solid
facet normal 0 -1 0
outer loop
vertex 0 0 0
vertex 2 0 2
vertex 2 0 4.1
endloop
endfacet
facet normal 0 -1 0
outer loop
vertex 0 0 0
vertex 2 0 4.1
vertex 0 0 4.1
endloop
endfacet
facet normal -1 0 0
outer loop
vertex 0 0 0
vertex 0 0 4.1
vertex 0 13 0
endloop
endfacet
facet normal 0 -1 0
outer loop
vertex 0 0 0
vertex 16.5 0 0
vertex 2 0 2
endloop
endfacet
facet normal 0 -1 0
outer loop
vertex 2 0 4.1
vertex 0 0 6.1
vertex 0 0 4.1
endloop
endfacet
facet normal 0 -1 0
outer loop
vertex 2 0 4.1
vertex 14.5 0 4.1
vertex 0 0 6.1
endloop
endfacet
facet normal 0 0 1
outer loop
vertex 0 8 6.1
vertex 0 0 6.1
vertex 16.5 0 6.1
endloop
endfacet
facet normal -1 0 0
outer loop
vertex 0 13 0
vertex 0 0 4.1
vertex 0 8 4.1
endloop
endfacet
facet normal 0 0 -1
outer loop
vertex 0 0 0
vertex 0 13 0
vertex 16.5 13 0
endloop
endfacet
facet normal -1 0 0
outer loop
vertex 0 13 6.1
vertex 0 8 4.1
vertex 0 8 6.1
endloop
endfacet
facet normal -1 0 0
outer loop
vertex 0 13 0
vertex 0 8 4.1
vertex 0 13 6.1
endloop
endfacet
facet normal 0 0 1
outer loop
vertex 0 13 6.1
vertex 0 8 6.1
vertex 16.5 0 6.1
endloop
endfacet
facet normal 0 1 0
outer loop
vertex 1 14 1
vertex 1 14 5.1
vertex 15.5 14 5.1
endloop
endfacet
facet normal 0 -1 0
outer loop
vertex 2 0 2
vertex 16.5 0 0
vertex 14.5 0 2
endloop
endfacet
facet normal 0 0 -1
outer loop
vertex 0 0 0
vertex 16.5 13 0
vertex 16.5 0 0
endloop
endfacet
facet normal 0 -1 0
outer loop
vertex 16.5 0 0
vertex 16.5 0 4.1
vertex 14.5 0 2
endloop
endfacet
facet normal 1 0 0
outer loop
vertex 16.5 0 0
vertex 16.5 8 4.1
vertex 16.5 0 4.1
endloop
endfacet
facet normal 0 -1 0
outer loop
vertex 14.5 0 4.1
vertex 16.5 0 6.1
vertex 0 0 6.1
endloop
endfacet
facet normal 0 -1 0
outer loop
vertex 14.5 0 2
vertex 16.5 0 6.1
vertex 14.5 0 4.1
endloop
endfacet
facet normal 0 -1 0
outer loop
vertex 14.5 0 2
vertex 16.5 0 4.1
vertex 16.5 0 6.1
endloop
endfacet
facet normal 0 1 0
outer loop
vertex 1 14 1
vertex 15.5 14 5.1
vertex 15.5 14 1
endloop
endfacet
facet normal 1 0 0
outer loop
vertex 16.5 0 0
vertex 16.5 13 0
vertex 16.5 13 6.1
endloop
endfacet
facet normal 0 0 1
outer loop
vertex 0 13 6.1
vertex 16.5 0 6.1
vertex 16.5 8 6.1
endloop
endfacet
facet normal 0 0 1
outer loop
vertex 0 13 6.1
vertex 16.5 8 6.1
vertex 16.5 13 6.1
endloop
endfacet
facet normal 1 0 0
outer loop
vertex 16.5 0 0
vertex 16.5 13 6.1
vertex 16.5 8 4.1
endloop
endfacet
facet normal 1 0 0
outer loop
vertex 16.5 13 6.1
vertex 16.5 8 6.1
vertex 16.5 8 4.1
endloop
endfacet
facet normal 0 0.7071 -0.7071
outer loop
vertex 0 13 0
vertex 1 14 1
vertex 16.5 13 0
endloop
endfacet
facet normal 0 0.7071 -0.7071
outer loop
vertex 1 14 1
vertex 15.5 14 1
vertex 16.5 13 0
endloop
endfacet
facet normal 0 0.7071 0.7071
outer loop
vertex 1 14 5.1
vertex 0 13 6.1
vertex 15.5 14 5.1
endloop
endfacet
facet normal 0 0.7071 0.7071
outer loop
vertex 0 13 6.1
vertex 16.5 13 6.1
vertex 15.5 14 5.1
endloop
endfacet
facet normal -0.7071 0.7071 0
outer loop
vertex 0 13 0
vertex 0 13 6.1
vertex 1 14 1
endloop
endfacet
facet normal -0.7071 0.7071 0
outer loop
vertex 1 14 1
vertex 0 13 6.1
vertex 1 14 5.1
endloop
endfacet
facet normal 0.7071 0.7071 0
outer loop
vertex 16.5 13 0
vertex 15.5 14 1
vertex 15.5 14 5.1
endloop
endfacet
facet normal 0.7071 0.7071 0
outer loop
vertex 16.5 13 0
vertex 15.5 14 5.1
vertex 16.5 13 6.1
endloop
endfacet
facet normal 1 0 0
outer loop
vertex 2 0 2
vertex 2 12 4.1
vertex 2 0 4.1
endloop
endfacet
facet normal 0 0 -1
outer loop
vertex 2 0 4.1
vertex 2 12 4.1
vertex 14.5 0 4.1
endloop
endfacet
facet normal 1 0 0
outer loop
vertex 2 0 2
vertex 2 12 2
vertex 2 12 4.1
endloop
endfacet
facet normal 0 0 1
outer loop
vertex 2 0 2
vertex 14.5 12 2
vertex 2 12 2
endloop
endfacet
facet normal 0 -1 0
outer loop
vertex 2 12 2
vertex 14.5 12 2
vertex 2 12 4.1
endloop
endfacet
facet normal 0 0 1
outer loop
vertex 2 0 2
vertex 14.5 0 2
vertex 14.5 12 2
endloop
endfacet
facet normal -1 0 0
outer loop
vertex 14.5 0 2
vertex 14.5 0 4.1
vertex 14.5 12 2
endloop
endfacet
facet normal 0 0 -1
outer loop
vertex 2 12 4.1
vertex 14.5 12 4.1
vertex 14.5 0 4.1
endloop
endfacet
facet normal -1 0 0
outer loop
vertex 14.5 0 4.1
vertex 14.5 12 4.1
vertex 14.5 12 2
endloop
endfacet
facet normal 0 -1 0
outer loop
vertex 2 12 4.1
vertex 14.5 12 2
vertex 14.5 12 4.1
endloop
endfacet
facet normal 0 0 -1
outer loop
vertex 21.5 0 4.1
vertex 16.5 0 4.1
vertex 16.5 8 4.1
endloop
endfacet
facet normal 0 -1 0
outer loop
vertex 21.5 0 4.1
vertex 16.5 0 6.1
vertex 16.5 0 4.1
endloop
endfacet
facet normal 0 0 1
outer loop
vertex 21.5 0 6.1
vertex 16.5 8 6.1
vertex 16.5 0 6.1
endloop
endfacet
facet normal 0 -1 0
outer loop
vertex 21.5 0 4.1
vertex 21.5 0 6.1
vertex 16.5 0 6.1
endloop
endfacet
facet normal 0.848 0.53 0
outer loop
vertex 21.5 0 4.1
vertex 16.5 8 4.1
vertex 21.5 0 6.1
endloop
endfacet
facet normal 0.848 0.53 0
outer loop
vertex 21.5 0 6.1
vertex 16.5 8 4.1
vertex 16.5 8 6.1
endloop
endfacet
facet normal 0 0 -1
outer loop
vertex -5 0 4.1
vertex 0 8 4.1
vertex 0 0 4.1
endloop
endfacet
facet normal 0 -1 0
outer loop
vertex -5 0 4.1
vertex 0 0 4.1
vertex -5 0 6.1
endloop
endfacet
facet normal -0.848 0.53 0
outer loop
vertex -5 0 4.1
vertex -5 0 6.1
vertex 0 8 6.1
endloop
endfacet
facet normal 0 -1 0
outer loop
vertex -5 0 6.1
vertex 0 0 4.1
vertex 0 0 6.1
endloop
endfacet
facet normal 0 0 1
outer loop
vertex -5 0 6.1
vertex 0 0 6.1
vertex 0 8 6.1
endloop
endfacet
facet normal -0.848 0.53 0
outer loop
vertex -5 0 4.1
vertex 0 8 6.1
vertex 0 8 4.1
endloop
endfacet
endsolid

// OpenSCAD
//
// Cap for the USB plug on LED Light Beanie Hat
//
// v0.09 - Added chamfers to all four edges of the back end of the cap.

// Tolerances for the PCB-integraded USB plugs vary widely

// Parameters for the USB-A plug
// Märt's hat
plug_width = 12.5;
plug_thickness = 2.1;
plug_length = 10;

// Dad's hat
// plug_width = 12.6;
// plug_thickness = 2.2;
// plug_length = 10;

// Parameters for the cap
cap_thickness = 2;

// Parameters for the ears
ear_leg_x = 5; // Length of the leg extending the cap's width (along X-axis)
ear_leg_y = 8; // Length of the leg extending into the cap from its front face (along Y-axis)

// Parameters for rounding
round_radius = 1; // Radius for rounding the outer edges

// Parameters for chamfering
chamfer_size = 1; // Size for chamfering the back edges

// Calculate outer dimensions of the cap
outer_width = plug_width + (2 * cap_thickness);
outer_length = plug_length + (2 * cap_thickness);
outer_height = plug_thickness + (2 * cap_thickness);

// Calculate inner dimensions of the cap (cavity)
inner_width = plug_width;
inner_length = plug_length;
inner_height = plug_thickness;
module usb_cap() {
    union() {
        // Main cap body with the cavity/opening
        difference() {
            // Outer body of the cap, which is a simple cube
            cube([outer_width, outer_length, outer_height]);

            // Chamfers for the four edges of the back end
            // 1. Top-back edge (along X-axis, at Y=outer_length, Z=outer_height)
            // Chamfers for the four edges of the back end
            //
            // 1. Bottom-back edge (along X-axis, at Y=outer_length, Z=outer_height)
            translate([0, outer_length ,  0]) {
                rotate([0, 90, 0]) { // Align polygon in YZ, extrude along X
                    linear_extrude(height = outer_width) {
                        #polygon([[0,0], [-chamfer_size, 0], [0, -chamfer_size]]);
                    }
                }
            }

            // 2. Top-back edge (along X-axis, at Y=outer_length, Z=0)
            translate([0, outer_length, outer_height]) {
                rotate([0, 90, 0]) { // Align polygon in YZ, extrude along X
                    linear_extrude(height = outer_width) {
                        polygon([[0,0], [chamfer_size, 0], [0, -chamfer_size]]);
                    }
                }
            }

            // 3. Left-back edge (along Z-axis, at X=0, Y=outer_length)
            translate([0, outer_length, 0]) {
                linear_extrude(height = outer_height) {
                    polygon([[0,0], [chamfer_size, 0], [0, -chamfer_size]]);
                }
            }

            // 4. Right-back edge (along Z-axis, at X=outer_width, Y=outer_length)
            translate([outer_width, outer_length, 0]) {
                linear_extrude(height = outer_height) {
                    polygon([[0,0], [-chamfer_size, 0], [0, -chamfer_size]]);
                }
            }

            // Inner cavity with an opening on one side
            // Position the cavity to start at Y=0 of the outer body
            // and extend inward for inner_length + cap_thickness,
            // leaving a cap_thickness wall at the other end.
            translate([cap_thickness, 0, cap_thickness]) {
                // This cube represents the void for the USB plug.
                // It cuts through the cap from the Y=0 side.
                cube([inner_width, inner_length + cap_thickness, inner_height]);
            }
        }

        // Triangular ears
        // Ear 1: on the right side of the cap (positive X side)
        // Its top surface is aligned with the cap's top surface.
        // It starts at the front edge (Y=0) of the cap.
        translate([
            outer_width, // Start at the positive X edge of the cap
            0, // Start at the front (Y=0) edge of the cap
            outer_height - cap_thickness // Bottom of extrusion aligns with cap's top surface
        ]) {
            linear_extrude(height = cap_thickness) {
                polygon([
                    [0, 0],                             // Corner on the cap's front-right edge (local X,Y)
                    [0, ear_leg_y],                     // Leg extending backwards along the cap's Y-direction (into the cap)
                    [ear_leg_x, 0]                      // Leg extending outwards along the cap's X-direction (making it wider)
                ]);
            }
        }

        // Ear 2: on the left side of the cap (negative X side)
        // Its top surface is aligned with the cap's top surface.
        // It starts at the front edge (Y=0) of the cap.
        translate([
            0, // Start at the negative X edge of the cap
            0, // Start at the front (Y=0) edge of the cap
            outer_height - cap_thickness // Bottom of extrusion aligns with cap's top surface
        ]) {
            linear_extrude(height = cap_thickness) {
                polygon([
                    [0, 0],                             // Corner on the cap's front-left edge (local X,Y)
                    [0, ear_leg_y],                     // Leg extending backwards along the cap's Y-direction (into the cap)
                    [-ear_leg_x, 0]                     // Leg extending outwards along the cap's X-direction (making it wider)
                ]);
            }
        }
    }
}

usb_cap();
